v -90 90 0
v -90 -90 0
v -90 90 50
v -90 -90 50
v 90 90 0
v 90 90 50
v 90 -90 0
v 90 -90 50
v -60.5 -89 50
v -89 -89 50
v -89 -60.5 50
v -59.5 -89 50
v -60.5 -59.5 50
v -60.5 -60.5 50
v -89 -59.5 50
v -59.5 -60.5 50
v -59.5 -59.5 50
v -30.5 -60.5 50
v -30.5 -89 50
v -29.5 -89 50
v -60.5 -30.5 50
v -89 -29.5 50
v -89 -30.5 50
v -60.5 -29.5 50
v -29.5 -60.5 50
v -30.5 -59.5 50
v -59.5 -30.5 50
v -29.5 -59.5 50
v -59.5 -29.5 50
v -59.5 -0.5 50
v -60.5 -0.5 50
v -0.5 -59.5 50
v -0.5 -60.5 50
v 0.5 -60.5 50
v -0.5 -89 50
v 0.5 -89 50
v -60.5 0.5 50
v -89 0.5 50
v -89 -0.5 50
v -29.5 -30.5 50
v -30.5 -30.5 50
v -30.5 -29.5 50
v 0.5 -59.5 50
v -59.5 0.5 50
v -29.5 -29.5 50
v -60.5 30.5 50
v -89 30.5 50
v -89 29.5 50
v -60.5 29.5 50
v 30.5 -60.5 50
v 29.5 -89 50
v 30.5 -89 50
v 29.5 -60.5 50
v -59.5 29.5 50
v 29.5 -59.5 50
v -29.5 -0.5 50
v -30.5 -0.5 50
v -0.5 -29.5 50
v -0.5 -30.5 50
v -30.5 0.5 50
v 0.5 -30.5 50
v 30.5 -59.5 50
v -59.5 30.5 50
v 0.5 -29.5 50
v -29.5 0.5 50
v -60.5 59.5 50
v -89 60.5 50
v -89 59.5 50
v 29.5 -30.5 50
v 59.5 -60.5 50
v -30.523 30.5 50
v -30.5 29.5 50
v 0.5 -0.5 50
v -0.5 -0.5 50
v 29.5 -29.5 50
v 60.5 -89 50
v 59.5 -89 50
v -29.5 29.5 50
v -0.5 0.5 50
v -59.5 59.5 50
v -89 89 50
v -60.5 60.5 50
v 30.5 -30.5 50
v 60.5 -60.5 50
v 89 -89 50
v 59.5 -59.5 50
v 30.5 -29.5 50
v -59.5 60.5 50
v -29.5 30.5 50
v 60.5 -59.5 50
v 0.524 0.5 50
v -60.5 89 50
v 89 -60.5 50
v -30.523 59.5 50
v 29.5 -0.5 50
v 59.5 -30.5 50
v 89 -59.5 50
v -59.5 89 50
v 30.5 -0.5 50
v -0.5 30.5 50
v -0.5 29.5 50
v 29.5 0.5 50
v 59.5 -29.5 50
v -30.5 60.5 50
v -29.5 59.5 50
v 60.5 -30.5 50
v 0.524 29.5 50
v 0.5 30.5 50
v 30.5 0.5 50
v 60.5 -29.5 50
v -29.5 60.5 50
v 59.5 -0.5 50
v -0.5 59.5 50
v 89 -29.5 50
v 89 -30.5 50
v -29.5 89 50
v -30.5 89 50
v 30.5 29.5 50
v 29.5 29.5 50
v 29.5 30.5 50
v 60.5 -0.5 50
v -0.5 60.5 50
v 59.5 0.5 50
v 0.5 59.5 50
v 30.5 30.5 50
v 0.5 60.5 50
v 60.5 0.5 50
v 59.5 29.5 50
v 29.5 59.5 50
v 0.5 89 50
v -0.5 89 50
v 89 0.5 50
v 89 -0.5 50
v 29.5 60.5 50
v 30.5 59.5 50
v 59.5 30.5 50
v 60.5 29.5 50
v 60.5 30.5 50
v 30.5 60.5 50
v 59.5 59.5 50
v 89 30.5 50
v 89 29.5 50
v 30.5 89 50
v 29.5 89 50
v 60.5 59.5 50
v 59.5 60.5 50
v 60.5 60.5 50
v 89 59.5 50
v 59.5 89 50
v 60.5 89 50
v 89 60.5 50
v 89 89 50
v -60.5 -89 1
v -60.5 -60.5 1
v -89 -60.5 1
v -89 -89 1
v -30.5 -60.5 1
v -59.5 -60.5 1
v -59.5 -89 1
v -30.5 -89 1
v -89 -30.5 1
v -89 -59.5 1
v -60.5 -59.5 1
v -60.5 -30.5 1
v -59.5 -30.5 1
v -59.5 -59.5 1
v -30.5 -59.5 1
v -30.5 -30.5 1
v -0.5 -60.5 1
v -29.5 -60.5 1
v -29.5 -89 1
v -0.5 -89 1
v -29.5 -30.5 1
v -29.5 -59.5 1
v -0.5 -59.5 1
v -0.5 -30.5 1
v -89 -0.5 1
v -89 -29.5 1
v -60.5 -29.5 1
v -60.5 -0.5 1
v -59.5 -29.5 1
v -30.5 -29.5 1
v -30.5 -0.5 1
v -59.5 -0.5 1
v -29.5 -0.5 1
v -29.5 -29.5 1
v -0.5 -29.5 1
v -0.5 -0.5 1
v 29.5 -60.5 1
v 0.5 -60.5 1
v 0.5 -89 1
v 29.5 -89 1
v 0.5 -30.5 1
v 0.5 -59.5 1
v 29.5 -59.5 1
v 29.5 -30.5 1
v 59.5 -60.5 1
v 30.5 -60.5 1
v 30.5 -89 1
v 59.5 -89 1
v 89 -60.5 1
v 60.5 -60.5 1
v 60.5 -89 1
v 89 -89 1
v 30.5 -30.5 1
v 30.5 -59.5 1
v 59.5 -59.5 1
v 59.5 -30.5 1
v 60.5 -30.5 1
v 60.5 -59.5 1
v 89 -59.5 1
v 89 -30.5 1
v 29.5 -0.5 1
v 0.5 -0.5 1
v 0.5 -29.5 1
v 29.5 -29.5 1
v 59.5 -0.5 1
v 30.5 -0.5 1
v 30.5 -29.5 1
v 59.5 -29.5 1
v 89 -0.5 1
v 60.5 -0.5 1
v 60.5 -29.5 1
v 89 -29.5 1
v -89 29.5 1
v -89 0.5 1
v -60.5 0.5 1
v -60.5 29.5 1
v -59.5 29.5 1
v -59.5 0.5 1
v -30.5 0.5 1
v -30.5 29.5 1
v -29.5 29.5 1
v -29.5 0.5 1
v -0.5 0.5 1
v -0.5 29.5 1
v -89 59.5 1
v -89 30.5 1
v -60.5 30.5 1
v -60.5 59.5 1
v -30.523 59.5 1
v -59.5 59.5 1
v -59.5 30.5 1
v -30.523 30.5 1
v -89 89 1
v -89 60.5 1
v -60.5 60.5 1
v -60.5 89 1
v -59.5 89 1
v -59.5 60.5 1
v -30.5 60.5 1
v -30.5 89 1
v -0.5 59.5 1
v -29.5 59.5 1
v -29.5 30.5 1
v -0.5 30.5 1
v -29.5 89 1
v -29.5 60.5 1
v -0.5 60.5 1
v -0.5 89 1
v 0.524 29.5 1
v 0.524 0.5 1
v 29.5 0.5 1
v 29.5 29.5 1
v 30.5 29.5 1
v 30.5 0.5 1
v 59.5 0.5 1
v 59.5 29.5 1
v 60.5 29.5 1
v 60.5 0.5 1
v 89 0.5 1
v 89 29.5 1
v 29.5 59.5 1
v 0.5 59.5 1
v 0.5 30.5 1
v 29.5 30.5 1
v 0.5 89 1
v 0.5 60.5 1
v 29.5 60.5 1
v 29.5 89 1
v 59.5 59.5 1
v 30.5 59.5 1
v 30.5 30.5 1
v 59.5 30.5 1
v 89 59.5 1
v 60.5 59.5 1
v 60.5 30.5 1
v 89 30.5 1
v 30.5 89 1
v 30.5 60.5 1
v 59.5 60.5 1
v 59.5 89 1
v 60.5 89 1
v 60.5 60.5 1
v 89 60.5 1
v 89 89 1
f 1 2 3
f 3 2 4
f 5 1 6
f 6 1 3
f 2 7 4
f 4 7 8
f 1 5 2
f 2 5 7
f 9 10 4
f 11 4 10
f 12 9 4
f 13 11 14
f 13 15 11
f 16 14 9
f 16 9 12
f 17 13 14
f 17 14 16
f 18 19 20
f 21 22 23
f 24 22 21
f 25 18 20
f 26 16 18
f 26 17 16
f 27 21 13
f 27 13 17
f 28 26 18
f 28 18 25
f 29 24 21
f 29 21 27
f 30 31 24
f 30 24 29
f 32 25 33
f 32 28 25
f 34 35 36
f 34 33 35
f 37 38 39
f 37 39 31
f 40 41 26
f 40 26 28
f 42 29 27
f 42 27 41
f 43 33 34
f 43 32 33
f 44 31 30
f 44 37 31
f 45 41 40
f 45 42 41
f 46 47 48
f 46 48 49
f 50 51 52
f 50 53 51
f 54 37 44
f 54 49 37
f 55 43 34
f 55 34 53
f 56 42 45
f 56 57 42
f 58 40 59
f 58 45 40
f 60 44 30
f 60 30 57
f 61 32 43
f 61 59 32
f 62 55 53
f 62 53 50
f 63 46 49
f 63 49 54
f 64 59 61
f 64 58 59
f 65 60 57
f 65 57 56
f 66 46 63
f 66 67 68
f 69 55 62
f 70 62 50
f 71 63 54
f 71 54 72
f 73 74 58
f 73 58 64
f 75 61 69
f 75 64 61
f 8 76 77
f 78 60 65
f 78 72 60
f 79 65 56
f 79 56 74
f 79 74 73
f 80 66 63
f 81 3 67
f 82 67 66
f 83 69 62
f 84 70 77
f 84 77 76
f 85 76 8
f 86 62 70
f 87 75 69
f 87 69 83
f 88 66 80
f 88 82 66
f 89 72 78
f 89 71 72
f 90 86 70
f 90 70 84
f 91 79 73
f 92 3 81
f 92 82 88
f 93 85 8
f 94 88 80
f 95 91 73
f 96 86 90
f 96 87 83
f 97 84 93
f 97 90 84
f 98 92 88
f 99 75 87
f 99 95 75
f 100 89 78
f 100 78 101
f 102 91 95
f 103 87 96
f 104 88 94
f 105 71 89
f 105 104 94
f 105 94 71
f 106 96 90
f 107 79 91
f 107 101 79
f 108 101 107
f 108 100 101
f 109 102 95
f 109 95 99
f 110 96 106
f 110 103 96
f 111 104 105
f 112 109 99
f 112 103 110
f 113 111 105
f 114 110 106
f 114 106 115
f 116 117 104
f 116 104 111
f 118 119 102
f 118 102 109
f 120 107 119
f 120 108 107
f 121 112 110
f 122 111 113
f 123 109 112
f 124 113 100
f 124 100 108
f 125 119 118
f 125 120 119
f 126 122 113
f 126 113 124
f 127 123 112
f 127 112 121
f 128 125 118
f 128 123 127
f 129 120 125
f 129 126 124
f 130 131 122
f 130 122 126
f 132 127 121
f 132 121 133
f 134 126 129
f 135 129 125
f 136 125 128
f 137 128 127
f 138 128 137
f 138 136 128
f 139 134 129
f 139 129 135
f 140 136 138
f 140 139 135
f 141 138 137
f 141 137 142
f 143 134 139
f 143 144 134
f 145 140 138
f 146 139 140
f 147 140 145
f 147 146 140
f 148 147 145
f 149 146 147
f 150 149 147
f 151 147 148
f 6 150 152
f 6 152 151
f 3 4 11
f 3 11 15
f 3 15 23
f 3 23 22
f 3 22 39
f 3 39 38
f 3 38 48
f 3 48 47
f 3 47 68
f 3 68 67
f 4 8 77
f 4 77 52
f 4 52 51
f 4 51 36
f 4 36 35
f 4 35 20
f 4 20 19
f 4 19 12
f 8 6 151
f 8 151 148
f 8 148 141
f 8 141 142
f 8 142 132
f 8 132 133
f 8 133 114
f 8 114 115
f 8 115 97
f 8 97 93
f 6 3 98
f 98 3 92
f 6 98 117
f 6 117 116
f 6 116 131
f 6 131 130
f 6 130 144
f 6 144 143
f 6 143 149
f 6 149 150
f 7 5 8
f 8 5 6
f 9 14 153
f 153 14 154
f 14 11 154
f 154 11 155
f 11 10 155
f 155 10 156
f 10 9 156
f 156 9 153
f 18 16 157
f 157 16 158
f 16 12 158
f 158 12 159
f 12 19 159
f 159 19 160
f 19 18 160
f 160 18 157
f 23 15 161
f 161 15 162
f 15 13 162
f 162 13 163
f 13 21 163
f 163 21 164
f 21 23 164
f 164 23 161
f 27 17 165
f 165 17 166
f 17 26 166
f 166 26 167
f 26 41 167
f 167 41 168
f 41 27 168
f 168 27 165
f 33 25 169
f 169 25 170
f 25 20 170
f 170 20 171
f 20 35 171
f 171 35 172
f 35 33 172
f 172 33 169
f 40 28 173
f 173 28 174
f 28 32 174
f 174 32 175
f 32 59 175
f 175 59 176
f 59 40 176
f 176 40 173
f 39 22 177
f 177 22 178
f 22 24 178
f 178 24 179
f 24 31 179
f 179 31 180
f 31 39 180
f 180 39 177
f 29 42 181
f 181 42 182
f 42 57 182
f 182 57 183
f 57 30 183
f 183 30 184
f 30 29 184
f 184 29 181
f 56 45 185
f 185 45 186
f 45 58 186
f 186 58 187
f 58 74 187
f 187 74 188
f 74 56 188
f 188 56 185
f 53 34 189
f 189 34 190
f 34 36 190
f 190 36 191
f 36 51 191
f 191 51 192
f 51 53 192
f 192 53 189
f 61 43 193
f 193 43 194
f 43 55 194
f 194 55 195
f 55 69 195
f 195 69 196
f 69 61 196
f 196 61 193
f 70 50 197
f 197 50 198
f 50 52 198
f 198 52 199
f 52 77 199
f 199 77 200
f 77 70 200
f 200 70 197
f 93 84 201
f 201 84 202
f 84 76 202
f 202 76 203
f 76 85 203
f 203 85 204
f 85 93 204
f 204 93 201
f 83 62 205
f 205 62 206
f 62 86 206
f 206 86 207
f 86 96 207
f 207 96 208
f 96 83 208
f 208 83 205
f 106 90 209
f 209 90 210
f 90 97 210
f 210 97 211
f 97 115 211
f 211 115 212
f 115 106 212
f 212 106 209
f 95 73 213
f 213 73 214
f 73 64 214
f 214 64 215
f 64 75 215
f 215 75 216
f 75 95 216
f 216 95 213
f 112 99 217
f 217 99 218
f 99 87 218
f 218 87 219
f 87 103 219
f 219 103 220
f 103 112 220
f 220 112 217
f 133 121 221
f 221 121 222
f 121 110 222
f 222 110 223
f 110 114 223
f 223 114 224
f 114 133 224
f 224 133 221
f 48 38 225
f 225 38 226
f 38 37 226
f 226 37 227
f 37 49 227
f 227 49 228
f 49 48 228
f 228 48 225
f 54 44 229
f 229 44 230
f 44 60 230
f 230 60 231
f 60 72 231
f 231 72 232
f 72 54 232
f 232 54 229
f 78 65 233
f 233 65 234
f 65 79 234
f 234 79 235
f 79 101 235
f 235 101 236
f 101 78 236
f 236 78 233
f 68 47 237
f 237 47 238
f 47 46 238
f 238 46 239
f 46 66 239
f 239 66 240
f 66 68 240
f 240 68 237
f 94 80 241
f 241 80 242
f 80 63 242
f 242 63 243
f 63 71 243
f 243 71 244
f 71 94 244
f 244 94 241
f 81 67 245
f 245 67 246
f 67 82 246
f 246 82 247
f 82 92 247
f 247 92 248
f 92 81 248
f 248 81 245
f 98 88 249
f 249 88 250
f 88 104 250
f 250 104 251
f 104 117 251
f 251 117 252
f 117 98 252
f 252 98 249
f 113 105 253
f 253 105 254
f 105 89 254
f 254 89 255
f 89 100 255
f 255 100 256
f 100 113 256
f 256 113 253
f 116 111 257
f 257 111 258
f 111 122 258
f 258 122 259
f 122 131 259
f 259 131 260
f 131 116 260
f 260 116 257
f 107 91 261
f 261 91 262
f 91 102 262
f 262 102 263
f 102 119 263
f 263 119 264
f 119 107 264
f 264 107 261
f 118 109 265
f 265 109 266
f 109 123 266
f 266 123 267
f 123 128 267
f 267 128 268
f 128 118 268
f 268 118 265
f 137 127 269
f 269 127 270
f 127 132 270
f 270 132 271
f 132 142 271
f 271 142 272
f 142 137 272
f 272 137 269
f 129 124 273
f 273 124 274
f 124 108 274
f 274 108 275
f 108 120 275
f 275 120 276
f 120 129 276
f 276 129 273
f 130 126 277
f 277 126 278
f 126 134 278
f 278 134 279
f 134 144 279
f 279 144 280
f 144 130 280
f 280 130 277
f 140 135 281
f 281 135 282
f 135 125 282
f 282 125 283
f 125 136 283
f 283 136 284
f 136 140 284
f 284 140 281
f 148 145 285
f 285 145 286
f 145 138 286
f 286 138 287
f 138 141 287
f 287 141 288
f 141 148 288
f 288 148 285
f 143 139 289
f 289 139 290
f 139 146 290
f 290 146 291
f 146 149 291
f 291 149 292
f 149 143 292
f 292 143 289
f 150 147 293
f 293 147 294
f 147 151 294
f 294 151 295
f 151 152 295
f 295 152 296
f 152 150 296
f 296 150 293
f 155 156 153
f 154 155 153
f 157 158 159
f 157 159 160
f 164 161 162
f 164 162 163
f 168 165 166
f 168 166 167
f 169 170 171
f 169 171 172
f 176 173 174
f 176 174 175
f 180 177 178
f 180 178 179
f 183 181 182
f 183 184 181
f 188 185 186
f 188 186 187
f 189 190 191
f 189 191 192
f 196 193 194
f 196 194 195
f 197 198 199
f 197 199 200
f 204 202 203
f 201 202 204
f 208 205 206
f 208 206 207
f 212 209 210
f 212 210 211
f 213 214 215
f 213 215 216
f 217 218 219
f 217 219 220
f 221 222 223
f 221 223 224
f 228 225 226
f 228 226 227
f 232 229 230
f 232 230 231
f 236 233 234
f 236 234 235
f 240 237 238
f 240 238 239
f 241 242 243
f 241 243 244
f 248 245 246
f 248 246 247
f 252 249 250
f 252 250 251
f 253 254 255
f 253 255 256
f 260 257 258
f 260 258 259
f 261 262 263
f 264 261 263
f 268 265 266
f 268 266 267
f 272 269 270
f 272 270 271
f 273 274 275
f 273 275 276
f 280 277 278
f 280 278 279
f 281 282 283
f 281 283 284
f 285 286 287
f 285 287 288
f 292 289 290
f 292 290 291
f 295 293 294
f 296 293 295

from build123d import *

# Parameters (mm, degrees)
SKETCH_W      = 180
SKETCH_H      = 180
PAD_DEPTH     = 50
SKETCH001_W   = 28.499999
SKETCH001_H   = 28.499999
SKETCH001_W_2 = 28.5
SKETCH001_H_2 = 29.000001
SKETCH001_H_3 = 29
SKETCH001_W_3 = 29.000001
SKETCH001_H_4 = 28.5
SKETCH001_W_4 = 28.977006
SKETCH001_W_5 = 29
SKETCH001_W_6 = 28.975581
POCKET_DEPTH  = 49


with BuildPart() as part:
    # Sketch → Pad (new body)
    with BuildSketch(Plane.XY):
        Rectangle(SKETCH_W, SKETCH_H)
    extrude(amount=PAD_DEPTH)

    # Sketch001 (on Face6 of Pad) → Pocket (cut)
    with BuildSketch(Plane.XY.offset(50)):
        with Locations((-74.75, 74.75)):
            Rectangle(SKETCH001_W, SKETCH001_H)
        with Locations((-74.750001, 45)):
            Rectangle(SKETCH001_W_2, SKETCH001_H_2)
        with Locations((-74.750001, 15)):
            Rectangle(SKETCH001_W_2, SKETCH001_H_3)
        with Locations((-45, 74.750001)):
            Rectangle(SKETCH001_W_3, SKETCH001_H_4)
        with Locations((-45.011498, 45)):
            Rectangle(SKETCH001_W_4, SKETCH001_H_2)
        with Locations((-45, 15)):
            Rectangle(SKETCH001_W_3, SKETCH001_H_3)
        with Locations((-15, 74.750001)):
            Rectangle(SKETCH001_W_5, SKETCH001_H_4)
        with Locations((-15, 45)):
            Rectangle(SKETCH001_W_5, SKETCH001_H_2)
        with Locations((-15, 15)):
            Rectangle(SKETCH001_W_5, SKETCH001_H_3)
        with Locations((15, 74.750001)):
            Rectangle(SKETCH001_W_5, SKETCH001_H_4)
        with Locations((15, 45)):
            Rectangle(SKETCH001_W_5, SKETCH001_H_2)
        with Locations((15.01221, 15)):
            Rectangle(SKETCH001_W_6, SKETCH001_H_3)
        with Locations((15, -15)):
            Rectangle(SKETCH001_W_5, SKETCH001_H_3)
        with Locations((15, -45)):
            Rectangle(SKETCH001_W_5, SKETCH001_H_2)
        with Locations((15, -74.750001)):
            Rectangle(SKETCH001_W_5, SKETCH001_H_4)
        with Locations((-74.750001, -15)):
            Rectangle(SKETCH001_W_2, SKETCH001_H_3)
        with Locations((-45, -15)):
            Rectangle(SKETCH001_W_3, SKETCH001_H_3)
        with Locations((-15, -15)):
            Rectangle(SKETCH001_W_5, SKETCH001_H_3)
        with Locations((-15, -45)):
            Rectangle(SKETCH001_W_5, SKETCH001_H_2)
        with Locations((-15, -74.750001)):
            Rectangle(SKETCH001_W_5, SKETCH001_H_4)
        with Locations((-74.750001, -45)):
            Rectangle(SKETCH001_W_2, SKETCH001_H_2)
        with Locations((-45, -45)):
            Rectangle(SKETCH001_W_3, SKETCH001_H_2)
        with Locations((-45, -74.750001)):
            Rectangle(SKETCH001_W_3, SKETCH001_H_4)
        with Locations((-74.750001, -74.750001)):
            Rectangle(SKETCH001_W_2, SKETCH001_H_4)
        with Locations((45, 74.750001)):
            Rectangle(SKETCH001_W_3, SKETCH001_H_4)
        with Locations((45, 45)):
            Rectangle(SKETCH001_W_3, SKETCH001_H_2)
        with Locations((45, 15)):
            Rectangle(SKETCH001_W_3, SKETCH001_H_3)
        with Locations((45, -15)):
            Rectangle(SKETCH001_W_3, SKETCH001_H_3)
        with Locations((45, -45)):
            Rectangle(SKETCH001_W_3, SKETCH001_H_2)
        with Locations((45, -74.750001)):
            Rectangle(SKETCH001_W_3, SKETCH001_H_4)
        with Locations((74.750001, 74.750001)):
            Rectangle(SKETCH001_W_2, SKETCH001_H_4)
        with Locations((74.750001, 45)):
            Rectangle(SKETCH001_W_2, SKETCH001_H_2)
        with Locations((74.750001, 15)):
            Rectangle(SKETCH001_W_2, SKETCH001_H_3)
        with Locations((74.750001, -15)):
            Rectangle(SKETCH001_W_2, SKETCH001_H_3)
        with Locations((74.750001, -45)):
            Rectangle(SKETCH001_W_2, SKETCH001_H_2)
        with Locations((74.750001, -74.750001)):
            Rectangle(SKETCH001_W_2, SKETCH001_H_4)
    extrude(amount=-POCKET_DEPTH, mode=Mode.SUBTRACT)


solid = part.part
